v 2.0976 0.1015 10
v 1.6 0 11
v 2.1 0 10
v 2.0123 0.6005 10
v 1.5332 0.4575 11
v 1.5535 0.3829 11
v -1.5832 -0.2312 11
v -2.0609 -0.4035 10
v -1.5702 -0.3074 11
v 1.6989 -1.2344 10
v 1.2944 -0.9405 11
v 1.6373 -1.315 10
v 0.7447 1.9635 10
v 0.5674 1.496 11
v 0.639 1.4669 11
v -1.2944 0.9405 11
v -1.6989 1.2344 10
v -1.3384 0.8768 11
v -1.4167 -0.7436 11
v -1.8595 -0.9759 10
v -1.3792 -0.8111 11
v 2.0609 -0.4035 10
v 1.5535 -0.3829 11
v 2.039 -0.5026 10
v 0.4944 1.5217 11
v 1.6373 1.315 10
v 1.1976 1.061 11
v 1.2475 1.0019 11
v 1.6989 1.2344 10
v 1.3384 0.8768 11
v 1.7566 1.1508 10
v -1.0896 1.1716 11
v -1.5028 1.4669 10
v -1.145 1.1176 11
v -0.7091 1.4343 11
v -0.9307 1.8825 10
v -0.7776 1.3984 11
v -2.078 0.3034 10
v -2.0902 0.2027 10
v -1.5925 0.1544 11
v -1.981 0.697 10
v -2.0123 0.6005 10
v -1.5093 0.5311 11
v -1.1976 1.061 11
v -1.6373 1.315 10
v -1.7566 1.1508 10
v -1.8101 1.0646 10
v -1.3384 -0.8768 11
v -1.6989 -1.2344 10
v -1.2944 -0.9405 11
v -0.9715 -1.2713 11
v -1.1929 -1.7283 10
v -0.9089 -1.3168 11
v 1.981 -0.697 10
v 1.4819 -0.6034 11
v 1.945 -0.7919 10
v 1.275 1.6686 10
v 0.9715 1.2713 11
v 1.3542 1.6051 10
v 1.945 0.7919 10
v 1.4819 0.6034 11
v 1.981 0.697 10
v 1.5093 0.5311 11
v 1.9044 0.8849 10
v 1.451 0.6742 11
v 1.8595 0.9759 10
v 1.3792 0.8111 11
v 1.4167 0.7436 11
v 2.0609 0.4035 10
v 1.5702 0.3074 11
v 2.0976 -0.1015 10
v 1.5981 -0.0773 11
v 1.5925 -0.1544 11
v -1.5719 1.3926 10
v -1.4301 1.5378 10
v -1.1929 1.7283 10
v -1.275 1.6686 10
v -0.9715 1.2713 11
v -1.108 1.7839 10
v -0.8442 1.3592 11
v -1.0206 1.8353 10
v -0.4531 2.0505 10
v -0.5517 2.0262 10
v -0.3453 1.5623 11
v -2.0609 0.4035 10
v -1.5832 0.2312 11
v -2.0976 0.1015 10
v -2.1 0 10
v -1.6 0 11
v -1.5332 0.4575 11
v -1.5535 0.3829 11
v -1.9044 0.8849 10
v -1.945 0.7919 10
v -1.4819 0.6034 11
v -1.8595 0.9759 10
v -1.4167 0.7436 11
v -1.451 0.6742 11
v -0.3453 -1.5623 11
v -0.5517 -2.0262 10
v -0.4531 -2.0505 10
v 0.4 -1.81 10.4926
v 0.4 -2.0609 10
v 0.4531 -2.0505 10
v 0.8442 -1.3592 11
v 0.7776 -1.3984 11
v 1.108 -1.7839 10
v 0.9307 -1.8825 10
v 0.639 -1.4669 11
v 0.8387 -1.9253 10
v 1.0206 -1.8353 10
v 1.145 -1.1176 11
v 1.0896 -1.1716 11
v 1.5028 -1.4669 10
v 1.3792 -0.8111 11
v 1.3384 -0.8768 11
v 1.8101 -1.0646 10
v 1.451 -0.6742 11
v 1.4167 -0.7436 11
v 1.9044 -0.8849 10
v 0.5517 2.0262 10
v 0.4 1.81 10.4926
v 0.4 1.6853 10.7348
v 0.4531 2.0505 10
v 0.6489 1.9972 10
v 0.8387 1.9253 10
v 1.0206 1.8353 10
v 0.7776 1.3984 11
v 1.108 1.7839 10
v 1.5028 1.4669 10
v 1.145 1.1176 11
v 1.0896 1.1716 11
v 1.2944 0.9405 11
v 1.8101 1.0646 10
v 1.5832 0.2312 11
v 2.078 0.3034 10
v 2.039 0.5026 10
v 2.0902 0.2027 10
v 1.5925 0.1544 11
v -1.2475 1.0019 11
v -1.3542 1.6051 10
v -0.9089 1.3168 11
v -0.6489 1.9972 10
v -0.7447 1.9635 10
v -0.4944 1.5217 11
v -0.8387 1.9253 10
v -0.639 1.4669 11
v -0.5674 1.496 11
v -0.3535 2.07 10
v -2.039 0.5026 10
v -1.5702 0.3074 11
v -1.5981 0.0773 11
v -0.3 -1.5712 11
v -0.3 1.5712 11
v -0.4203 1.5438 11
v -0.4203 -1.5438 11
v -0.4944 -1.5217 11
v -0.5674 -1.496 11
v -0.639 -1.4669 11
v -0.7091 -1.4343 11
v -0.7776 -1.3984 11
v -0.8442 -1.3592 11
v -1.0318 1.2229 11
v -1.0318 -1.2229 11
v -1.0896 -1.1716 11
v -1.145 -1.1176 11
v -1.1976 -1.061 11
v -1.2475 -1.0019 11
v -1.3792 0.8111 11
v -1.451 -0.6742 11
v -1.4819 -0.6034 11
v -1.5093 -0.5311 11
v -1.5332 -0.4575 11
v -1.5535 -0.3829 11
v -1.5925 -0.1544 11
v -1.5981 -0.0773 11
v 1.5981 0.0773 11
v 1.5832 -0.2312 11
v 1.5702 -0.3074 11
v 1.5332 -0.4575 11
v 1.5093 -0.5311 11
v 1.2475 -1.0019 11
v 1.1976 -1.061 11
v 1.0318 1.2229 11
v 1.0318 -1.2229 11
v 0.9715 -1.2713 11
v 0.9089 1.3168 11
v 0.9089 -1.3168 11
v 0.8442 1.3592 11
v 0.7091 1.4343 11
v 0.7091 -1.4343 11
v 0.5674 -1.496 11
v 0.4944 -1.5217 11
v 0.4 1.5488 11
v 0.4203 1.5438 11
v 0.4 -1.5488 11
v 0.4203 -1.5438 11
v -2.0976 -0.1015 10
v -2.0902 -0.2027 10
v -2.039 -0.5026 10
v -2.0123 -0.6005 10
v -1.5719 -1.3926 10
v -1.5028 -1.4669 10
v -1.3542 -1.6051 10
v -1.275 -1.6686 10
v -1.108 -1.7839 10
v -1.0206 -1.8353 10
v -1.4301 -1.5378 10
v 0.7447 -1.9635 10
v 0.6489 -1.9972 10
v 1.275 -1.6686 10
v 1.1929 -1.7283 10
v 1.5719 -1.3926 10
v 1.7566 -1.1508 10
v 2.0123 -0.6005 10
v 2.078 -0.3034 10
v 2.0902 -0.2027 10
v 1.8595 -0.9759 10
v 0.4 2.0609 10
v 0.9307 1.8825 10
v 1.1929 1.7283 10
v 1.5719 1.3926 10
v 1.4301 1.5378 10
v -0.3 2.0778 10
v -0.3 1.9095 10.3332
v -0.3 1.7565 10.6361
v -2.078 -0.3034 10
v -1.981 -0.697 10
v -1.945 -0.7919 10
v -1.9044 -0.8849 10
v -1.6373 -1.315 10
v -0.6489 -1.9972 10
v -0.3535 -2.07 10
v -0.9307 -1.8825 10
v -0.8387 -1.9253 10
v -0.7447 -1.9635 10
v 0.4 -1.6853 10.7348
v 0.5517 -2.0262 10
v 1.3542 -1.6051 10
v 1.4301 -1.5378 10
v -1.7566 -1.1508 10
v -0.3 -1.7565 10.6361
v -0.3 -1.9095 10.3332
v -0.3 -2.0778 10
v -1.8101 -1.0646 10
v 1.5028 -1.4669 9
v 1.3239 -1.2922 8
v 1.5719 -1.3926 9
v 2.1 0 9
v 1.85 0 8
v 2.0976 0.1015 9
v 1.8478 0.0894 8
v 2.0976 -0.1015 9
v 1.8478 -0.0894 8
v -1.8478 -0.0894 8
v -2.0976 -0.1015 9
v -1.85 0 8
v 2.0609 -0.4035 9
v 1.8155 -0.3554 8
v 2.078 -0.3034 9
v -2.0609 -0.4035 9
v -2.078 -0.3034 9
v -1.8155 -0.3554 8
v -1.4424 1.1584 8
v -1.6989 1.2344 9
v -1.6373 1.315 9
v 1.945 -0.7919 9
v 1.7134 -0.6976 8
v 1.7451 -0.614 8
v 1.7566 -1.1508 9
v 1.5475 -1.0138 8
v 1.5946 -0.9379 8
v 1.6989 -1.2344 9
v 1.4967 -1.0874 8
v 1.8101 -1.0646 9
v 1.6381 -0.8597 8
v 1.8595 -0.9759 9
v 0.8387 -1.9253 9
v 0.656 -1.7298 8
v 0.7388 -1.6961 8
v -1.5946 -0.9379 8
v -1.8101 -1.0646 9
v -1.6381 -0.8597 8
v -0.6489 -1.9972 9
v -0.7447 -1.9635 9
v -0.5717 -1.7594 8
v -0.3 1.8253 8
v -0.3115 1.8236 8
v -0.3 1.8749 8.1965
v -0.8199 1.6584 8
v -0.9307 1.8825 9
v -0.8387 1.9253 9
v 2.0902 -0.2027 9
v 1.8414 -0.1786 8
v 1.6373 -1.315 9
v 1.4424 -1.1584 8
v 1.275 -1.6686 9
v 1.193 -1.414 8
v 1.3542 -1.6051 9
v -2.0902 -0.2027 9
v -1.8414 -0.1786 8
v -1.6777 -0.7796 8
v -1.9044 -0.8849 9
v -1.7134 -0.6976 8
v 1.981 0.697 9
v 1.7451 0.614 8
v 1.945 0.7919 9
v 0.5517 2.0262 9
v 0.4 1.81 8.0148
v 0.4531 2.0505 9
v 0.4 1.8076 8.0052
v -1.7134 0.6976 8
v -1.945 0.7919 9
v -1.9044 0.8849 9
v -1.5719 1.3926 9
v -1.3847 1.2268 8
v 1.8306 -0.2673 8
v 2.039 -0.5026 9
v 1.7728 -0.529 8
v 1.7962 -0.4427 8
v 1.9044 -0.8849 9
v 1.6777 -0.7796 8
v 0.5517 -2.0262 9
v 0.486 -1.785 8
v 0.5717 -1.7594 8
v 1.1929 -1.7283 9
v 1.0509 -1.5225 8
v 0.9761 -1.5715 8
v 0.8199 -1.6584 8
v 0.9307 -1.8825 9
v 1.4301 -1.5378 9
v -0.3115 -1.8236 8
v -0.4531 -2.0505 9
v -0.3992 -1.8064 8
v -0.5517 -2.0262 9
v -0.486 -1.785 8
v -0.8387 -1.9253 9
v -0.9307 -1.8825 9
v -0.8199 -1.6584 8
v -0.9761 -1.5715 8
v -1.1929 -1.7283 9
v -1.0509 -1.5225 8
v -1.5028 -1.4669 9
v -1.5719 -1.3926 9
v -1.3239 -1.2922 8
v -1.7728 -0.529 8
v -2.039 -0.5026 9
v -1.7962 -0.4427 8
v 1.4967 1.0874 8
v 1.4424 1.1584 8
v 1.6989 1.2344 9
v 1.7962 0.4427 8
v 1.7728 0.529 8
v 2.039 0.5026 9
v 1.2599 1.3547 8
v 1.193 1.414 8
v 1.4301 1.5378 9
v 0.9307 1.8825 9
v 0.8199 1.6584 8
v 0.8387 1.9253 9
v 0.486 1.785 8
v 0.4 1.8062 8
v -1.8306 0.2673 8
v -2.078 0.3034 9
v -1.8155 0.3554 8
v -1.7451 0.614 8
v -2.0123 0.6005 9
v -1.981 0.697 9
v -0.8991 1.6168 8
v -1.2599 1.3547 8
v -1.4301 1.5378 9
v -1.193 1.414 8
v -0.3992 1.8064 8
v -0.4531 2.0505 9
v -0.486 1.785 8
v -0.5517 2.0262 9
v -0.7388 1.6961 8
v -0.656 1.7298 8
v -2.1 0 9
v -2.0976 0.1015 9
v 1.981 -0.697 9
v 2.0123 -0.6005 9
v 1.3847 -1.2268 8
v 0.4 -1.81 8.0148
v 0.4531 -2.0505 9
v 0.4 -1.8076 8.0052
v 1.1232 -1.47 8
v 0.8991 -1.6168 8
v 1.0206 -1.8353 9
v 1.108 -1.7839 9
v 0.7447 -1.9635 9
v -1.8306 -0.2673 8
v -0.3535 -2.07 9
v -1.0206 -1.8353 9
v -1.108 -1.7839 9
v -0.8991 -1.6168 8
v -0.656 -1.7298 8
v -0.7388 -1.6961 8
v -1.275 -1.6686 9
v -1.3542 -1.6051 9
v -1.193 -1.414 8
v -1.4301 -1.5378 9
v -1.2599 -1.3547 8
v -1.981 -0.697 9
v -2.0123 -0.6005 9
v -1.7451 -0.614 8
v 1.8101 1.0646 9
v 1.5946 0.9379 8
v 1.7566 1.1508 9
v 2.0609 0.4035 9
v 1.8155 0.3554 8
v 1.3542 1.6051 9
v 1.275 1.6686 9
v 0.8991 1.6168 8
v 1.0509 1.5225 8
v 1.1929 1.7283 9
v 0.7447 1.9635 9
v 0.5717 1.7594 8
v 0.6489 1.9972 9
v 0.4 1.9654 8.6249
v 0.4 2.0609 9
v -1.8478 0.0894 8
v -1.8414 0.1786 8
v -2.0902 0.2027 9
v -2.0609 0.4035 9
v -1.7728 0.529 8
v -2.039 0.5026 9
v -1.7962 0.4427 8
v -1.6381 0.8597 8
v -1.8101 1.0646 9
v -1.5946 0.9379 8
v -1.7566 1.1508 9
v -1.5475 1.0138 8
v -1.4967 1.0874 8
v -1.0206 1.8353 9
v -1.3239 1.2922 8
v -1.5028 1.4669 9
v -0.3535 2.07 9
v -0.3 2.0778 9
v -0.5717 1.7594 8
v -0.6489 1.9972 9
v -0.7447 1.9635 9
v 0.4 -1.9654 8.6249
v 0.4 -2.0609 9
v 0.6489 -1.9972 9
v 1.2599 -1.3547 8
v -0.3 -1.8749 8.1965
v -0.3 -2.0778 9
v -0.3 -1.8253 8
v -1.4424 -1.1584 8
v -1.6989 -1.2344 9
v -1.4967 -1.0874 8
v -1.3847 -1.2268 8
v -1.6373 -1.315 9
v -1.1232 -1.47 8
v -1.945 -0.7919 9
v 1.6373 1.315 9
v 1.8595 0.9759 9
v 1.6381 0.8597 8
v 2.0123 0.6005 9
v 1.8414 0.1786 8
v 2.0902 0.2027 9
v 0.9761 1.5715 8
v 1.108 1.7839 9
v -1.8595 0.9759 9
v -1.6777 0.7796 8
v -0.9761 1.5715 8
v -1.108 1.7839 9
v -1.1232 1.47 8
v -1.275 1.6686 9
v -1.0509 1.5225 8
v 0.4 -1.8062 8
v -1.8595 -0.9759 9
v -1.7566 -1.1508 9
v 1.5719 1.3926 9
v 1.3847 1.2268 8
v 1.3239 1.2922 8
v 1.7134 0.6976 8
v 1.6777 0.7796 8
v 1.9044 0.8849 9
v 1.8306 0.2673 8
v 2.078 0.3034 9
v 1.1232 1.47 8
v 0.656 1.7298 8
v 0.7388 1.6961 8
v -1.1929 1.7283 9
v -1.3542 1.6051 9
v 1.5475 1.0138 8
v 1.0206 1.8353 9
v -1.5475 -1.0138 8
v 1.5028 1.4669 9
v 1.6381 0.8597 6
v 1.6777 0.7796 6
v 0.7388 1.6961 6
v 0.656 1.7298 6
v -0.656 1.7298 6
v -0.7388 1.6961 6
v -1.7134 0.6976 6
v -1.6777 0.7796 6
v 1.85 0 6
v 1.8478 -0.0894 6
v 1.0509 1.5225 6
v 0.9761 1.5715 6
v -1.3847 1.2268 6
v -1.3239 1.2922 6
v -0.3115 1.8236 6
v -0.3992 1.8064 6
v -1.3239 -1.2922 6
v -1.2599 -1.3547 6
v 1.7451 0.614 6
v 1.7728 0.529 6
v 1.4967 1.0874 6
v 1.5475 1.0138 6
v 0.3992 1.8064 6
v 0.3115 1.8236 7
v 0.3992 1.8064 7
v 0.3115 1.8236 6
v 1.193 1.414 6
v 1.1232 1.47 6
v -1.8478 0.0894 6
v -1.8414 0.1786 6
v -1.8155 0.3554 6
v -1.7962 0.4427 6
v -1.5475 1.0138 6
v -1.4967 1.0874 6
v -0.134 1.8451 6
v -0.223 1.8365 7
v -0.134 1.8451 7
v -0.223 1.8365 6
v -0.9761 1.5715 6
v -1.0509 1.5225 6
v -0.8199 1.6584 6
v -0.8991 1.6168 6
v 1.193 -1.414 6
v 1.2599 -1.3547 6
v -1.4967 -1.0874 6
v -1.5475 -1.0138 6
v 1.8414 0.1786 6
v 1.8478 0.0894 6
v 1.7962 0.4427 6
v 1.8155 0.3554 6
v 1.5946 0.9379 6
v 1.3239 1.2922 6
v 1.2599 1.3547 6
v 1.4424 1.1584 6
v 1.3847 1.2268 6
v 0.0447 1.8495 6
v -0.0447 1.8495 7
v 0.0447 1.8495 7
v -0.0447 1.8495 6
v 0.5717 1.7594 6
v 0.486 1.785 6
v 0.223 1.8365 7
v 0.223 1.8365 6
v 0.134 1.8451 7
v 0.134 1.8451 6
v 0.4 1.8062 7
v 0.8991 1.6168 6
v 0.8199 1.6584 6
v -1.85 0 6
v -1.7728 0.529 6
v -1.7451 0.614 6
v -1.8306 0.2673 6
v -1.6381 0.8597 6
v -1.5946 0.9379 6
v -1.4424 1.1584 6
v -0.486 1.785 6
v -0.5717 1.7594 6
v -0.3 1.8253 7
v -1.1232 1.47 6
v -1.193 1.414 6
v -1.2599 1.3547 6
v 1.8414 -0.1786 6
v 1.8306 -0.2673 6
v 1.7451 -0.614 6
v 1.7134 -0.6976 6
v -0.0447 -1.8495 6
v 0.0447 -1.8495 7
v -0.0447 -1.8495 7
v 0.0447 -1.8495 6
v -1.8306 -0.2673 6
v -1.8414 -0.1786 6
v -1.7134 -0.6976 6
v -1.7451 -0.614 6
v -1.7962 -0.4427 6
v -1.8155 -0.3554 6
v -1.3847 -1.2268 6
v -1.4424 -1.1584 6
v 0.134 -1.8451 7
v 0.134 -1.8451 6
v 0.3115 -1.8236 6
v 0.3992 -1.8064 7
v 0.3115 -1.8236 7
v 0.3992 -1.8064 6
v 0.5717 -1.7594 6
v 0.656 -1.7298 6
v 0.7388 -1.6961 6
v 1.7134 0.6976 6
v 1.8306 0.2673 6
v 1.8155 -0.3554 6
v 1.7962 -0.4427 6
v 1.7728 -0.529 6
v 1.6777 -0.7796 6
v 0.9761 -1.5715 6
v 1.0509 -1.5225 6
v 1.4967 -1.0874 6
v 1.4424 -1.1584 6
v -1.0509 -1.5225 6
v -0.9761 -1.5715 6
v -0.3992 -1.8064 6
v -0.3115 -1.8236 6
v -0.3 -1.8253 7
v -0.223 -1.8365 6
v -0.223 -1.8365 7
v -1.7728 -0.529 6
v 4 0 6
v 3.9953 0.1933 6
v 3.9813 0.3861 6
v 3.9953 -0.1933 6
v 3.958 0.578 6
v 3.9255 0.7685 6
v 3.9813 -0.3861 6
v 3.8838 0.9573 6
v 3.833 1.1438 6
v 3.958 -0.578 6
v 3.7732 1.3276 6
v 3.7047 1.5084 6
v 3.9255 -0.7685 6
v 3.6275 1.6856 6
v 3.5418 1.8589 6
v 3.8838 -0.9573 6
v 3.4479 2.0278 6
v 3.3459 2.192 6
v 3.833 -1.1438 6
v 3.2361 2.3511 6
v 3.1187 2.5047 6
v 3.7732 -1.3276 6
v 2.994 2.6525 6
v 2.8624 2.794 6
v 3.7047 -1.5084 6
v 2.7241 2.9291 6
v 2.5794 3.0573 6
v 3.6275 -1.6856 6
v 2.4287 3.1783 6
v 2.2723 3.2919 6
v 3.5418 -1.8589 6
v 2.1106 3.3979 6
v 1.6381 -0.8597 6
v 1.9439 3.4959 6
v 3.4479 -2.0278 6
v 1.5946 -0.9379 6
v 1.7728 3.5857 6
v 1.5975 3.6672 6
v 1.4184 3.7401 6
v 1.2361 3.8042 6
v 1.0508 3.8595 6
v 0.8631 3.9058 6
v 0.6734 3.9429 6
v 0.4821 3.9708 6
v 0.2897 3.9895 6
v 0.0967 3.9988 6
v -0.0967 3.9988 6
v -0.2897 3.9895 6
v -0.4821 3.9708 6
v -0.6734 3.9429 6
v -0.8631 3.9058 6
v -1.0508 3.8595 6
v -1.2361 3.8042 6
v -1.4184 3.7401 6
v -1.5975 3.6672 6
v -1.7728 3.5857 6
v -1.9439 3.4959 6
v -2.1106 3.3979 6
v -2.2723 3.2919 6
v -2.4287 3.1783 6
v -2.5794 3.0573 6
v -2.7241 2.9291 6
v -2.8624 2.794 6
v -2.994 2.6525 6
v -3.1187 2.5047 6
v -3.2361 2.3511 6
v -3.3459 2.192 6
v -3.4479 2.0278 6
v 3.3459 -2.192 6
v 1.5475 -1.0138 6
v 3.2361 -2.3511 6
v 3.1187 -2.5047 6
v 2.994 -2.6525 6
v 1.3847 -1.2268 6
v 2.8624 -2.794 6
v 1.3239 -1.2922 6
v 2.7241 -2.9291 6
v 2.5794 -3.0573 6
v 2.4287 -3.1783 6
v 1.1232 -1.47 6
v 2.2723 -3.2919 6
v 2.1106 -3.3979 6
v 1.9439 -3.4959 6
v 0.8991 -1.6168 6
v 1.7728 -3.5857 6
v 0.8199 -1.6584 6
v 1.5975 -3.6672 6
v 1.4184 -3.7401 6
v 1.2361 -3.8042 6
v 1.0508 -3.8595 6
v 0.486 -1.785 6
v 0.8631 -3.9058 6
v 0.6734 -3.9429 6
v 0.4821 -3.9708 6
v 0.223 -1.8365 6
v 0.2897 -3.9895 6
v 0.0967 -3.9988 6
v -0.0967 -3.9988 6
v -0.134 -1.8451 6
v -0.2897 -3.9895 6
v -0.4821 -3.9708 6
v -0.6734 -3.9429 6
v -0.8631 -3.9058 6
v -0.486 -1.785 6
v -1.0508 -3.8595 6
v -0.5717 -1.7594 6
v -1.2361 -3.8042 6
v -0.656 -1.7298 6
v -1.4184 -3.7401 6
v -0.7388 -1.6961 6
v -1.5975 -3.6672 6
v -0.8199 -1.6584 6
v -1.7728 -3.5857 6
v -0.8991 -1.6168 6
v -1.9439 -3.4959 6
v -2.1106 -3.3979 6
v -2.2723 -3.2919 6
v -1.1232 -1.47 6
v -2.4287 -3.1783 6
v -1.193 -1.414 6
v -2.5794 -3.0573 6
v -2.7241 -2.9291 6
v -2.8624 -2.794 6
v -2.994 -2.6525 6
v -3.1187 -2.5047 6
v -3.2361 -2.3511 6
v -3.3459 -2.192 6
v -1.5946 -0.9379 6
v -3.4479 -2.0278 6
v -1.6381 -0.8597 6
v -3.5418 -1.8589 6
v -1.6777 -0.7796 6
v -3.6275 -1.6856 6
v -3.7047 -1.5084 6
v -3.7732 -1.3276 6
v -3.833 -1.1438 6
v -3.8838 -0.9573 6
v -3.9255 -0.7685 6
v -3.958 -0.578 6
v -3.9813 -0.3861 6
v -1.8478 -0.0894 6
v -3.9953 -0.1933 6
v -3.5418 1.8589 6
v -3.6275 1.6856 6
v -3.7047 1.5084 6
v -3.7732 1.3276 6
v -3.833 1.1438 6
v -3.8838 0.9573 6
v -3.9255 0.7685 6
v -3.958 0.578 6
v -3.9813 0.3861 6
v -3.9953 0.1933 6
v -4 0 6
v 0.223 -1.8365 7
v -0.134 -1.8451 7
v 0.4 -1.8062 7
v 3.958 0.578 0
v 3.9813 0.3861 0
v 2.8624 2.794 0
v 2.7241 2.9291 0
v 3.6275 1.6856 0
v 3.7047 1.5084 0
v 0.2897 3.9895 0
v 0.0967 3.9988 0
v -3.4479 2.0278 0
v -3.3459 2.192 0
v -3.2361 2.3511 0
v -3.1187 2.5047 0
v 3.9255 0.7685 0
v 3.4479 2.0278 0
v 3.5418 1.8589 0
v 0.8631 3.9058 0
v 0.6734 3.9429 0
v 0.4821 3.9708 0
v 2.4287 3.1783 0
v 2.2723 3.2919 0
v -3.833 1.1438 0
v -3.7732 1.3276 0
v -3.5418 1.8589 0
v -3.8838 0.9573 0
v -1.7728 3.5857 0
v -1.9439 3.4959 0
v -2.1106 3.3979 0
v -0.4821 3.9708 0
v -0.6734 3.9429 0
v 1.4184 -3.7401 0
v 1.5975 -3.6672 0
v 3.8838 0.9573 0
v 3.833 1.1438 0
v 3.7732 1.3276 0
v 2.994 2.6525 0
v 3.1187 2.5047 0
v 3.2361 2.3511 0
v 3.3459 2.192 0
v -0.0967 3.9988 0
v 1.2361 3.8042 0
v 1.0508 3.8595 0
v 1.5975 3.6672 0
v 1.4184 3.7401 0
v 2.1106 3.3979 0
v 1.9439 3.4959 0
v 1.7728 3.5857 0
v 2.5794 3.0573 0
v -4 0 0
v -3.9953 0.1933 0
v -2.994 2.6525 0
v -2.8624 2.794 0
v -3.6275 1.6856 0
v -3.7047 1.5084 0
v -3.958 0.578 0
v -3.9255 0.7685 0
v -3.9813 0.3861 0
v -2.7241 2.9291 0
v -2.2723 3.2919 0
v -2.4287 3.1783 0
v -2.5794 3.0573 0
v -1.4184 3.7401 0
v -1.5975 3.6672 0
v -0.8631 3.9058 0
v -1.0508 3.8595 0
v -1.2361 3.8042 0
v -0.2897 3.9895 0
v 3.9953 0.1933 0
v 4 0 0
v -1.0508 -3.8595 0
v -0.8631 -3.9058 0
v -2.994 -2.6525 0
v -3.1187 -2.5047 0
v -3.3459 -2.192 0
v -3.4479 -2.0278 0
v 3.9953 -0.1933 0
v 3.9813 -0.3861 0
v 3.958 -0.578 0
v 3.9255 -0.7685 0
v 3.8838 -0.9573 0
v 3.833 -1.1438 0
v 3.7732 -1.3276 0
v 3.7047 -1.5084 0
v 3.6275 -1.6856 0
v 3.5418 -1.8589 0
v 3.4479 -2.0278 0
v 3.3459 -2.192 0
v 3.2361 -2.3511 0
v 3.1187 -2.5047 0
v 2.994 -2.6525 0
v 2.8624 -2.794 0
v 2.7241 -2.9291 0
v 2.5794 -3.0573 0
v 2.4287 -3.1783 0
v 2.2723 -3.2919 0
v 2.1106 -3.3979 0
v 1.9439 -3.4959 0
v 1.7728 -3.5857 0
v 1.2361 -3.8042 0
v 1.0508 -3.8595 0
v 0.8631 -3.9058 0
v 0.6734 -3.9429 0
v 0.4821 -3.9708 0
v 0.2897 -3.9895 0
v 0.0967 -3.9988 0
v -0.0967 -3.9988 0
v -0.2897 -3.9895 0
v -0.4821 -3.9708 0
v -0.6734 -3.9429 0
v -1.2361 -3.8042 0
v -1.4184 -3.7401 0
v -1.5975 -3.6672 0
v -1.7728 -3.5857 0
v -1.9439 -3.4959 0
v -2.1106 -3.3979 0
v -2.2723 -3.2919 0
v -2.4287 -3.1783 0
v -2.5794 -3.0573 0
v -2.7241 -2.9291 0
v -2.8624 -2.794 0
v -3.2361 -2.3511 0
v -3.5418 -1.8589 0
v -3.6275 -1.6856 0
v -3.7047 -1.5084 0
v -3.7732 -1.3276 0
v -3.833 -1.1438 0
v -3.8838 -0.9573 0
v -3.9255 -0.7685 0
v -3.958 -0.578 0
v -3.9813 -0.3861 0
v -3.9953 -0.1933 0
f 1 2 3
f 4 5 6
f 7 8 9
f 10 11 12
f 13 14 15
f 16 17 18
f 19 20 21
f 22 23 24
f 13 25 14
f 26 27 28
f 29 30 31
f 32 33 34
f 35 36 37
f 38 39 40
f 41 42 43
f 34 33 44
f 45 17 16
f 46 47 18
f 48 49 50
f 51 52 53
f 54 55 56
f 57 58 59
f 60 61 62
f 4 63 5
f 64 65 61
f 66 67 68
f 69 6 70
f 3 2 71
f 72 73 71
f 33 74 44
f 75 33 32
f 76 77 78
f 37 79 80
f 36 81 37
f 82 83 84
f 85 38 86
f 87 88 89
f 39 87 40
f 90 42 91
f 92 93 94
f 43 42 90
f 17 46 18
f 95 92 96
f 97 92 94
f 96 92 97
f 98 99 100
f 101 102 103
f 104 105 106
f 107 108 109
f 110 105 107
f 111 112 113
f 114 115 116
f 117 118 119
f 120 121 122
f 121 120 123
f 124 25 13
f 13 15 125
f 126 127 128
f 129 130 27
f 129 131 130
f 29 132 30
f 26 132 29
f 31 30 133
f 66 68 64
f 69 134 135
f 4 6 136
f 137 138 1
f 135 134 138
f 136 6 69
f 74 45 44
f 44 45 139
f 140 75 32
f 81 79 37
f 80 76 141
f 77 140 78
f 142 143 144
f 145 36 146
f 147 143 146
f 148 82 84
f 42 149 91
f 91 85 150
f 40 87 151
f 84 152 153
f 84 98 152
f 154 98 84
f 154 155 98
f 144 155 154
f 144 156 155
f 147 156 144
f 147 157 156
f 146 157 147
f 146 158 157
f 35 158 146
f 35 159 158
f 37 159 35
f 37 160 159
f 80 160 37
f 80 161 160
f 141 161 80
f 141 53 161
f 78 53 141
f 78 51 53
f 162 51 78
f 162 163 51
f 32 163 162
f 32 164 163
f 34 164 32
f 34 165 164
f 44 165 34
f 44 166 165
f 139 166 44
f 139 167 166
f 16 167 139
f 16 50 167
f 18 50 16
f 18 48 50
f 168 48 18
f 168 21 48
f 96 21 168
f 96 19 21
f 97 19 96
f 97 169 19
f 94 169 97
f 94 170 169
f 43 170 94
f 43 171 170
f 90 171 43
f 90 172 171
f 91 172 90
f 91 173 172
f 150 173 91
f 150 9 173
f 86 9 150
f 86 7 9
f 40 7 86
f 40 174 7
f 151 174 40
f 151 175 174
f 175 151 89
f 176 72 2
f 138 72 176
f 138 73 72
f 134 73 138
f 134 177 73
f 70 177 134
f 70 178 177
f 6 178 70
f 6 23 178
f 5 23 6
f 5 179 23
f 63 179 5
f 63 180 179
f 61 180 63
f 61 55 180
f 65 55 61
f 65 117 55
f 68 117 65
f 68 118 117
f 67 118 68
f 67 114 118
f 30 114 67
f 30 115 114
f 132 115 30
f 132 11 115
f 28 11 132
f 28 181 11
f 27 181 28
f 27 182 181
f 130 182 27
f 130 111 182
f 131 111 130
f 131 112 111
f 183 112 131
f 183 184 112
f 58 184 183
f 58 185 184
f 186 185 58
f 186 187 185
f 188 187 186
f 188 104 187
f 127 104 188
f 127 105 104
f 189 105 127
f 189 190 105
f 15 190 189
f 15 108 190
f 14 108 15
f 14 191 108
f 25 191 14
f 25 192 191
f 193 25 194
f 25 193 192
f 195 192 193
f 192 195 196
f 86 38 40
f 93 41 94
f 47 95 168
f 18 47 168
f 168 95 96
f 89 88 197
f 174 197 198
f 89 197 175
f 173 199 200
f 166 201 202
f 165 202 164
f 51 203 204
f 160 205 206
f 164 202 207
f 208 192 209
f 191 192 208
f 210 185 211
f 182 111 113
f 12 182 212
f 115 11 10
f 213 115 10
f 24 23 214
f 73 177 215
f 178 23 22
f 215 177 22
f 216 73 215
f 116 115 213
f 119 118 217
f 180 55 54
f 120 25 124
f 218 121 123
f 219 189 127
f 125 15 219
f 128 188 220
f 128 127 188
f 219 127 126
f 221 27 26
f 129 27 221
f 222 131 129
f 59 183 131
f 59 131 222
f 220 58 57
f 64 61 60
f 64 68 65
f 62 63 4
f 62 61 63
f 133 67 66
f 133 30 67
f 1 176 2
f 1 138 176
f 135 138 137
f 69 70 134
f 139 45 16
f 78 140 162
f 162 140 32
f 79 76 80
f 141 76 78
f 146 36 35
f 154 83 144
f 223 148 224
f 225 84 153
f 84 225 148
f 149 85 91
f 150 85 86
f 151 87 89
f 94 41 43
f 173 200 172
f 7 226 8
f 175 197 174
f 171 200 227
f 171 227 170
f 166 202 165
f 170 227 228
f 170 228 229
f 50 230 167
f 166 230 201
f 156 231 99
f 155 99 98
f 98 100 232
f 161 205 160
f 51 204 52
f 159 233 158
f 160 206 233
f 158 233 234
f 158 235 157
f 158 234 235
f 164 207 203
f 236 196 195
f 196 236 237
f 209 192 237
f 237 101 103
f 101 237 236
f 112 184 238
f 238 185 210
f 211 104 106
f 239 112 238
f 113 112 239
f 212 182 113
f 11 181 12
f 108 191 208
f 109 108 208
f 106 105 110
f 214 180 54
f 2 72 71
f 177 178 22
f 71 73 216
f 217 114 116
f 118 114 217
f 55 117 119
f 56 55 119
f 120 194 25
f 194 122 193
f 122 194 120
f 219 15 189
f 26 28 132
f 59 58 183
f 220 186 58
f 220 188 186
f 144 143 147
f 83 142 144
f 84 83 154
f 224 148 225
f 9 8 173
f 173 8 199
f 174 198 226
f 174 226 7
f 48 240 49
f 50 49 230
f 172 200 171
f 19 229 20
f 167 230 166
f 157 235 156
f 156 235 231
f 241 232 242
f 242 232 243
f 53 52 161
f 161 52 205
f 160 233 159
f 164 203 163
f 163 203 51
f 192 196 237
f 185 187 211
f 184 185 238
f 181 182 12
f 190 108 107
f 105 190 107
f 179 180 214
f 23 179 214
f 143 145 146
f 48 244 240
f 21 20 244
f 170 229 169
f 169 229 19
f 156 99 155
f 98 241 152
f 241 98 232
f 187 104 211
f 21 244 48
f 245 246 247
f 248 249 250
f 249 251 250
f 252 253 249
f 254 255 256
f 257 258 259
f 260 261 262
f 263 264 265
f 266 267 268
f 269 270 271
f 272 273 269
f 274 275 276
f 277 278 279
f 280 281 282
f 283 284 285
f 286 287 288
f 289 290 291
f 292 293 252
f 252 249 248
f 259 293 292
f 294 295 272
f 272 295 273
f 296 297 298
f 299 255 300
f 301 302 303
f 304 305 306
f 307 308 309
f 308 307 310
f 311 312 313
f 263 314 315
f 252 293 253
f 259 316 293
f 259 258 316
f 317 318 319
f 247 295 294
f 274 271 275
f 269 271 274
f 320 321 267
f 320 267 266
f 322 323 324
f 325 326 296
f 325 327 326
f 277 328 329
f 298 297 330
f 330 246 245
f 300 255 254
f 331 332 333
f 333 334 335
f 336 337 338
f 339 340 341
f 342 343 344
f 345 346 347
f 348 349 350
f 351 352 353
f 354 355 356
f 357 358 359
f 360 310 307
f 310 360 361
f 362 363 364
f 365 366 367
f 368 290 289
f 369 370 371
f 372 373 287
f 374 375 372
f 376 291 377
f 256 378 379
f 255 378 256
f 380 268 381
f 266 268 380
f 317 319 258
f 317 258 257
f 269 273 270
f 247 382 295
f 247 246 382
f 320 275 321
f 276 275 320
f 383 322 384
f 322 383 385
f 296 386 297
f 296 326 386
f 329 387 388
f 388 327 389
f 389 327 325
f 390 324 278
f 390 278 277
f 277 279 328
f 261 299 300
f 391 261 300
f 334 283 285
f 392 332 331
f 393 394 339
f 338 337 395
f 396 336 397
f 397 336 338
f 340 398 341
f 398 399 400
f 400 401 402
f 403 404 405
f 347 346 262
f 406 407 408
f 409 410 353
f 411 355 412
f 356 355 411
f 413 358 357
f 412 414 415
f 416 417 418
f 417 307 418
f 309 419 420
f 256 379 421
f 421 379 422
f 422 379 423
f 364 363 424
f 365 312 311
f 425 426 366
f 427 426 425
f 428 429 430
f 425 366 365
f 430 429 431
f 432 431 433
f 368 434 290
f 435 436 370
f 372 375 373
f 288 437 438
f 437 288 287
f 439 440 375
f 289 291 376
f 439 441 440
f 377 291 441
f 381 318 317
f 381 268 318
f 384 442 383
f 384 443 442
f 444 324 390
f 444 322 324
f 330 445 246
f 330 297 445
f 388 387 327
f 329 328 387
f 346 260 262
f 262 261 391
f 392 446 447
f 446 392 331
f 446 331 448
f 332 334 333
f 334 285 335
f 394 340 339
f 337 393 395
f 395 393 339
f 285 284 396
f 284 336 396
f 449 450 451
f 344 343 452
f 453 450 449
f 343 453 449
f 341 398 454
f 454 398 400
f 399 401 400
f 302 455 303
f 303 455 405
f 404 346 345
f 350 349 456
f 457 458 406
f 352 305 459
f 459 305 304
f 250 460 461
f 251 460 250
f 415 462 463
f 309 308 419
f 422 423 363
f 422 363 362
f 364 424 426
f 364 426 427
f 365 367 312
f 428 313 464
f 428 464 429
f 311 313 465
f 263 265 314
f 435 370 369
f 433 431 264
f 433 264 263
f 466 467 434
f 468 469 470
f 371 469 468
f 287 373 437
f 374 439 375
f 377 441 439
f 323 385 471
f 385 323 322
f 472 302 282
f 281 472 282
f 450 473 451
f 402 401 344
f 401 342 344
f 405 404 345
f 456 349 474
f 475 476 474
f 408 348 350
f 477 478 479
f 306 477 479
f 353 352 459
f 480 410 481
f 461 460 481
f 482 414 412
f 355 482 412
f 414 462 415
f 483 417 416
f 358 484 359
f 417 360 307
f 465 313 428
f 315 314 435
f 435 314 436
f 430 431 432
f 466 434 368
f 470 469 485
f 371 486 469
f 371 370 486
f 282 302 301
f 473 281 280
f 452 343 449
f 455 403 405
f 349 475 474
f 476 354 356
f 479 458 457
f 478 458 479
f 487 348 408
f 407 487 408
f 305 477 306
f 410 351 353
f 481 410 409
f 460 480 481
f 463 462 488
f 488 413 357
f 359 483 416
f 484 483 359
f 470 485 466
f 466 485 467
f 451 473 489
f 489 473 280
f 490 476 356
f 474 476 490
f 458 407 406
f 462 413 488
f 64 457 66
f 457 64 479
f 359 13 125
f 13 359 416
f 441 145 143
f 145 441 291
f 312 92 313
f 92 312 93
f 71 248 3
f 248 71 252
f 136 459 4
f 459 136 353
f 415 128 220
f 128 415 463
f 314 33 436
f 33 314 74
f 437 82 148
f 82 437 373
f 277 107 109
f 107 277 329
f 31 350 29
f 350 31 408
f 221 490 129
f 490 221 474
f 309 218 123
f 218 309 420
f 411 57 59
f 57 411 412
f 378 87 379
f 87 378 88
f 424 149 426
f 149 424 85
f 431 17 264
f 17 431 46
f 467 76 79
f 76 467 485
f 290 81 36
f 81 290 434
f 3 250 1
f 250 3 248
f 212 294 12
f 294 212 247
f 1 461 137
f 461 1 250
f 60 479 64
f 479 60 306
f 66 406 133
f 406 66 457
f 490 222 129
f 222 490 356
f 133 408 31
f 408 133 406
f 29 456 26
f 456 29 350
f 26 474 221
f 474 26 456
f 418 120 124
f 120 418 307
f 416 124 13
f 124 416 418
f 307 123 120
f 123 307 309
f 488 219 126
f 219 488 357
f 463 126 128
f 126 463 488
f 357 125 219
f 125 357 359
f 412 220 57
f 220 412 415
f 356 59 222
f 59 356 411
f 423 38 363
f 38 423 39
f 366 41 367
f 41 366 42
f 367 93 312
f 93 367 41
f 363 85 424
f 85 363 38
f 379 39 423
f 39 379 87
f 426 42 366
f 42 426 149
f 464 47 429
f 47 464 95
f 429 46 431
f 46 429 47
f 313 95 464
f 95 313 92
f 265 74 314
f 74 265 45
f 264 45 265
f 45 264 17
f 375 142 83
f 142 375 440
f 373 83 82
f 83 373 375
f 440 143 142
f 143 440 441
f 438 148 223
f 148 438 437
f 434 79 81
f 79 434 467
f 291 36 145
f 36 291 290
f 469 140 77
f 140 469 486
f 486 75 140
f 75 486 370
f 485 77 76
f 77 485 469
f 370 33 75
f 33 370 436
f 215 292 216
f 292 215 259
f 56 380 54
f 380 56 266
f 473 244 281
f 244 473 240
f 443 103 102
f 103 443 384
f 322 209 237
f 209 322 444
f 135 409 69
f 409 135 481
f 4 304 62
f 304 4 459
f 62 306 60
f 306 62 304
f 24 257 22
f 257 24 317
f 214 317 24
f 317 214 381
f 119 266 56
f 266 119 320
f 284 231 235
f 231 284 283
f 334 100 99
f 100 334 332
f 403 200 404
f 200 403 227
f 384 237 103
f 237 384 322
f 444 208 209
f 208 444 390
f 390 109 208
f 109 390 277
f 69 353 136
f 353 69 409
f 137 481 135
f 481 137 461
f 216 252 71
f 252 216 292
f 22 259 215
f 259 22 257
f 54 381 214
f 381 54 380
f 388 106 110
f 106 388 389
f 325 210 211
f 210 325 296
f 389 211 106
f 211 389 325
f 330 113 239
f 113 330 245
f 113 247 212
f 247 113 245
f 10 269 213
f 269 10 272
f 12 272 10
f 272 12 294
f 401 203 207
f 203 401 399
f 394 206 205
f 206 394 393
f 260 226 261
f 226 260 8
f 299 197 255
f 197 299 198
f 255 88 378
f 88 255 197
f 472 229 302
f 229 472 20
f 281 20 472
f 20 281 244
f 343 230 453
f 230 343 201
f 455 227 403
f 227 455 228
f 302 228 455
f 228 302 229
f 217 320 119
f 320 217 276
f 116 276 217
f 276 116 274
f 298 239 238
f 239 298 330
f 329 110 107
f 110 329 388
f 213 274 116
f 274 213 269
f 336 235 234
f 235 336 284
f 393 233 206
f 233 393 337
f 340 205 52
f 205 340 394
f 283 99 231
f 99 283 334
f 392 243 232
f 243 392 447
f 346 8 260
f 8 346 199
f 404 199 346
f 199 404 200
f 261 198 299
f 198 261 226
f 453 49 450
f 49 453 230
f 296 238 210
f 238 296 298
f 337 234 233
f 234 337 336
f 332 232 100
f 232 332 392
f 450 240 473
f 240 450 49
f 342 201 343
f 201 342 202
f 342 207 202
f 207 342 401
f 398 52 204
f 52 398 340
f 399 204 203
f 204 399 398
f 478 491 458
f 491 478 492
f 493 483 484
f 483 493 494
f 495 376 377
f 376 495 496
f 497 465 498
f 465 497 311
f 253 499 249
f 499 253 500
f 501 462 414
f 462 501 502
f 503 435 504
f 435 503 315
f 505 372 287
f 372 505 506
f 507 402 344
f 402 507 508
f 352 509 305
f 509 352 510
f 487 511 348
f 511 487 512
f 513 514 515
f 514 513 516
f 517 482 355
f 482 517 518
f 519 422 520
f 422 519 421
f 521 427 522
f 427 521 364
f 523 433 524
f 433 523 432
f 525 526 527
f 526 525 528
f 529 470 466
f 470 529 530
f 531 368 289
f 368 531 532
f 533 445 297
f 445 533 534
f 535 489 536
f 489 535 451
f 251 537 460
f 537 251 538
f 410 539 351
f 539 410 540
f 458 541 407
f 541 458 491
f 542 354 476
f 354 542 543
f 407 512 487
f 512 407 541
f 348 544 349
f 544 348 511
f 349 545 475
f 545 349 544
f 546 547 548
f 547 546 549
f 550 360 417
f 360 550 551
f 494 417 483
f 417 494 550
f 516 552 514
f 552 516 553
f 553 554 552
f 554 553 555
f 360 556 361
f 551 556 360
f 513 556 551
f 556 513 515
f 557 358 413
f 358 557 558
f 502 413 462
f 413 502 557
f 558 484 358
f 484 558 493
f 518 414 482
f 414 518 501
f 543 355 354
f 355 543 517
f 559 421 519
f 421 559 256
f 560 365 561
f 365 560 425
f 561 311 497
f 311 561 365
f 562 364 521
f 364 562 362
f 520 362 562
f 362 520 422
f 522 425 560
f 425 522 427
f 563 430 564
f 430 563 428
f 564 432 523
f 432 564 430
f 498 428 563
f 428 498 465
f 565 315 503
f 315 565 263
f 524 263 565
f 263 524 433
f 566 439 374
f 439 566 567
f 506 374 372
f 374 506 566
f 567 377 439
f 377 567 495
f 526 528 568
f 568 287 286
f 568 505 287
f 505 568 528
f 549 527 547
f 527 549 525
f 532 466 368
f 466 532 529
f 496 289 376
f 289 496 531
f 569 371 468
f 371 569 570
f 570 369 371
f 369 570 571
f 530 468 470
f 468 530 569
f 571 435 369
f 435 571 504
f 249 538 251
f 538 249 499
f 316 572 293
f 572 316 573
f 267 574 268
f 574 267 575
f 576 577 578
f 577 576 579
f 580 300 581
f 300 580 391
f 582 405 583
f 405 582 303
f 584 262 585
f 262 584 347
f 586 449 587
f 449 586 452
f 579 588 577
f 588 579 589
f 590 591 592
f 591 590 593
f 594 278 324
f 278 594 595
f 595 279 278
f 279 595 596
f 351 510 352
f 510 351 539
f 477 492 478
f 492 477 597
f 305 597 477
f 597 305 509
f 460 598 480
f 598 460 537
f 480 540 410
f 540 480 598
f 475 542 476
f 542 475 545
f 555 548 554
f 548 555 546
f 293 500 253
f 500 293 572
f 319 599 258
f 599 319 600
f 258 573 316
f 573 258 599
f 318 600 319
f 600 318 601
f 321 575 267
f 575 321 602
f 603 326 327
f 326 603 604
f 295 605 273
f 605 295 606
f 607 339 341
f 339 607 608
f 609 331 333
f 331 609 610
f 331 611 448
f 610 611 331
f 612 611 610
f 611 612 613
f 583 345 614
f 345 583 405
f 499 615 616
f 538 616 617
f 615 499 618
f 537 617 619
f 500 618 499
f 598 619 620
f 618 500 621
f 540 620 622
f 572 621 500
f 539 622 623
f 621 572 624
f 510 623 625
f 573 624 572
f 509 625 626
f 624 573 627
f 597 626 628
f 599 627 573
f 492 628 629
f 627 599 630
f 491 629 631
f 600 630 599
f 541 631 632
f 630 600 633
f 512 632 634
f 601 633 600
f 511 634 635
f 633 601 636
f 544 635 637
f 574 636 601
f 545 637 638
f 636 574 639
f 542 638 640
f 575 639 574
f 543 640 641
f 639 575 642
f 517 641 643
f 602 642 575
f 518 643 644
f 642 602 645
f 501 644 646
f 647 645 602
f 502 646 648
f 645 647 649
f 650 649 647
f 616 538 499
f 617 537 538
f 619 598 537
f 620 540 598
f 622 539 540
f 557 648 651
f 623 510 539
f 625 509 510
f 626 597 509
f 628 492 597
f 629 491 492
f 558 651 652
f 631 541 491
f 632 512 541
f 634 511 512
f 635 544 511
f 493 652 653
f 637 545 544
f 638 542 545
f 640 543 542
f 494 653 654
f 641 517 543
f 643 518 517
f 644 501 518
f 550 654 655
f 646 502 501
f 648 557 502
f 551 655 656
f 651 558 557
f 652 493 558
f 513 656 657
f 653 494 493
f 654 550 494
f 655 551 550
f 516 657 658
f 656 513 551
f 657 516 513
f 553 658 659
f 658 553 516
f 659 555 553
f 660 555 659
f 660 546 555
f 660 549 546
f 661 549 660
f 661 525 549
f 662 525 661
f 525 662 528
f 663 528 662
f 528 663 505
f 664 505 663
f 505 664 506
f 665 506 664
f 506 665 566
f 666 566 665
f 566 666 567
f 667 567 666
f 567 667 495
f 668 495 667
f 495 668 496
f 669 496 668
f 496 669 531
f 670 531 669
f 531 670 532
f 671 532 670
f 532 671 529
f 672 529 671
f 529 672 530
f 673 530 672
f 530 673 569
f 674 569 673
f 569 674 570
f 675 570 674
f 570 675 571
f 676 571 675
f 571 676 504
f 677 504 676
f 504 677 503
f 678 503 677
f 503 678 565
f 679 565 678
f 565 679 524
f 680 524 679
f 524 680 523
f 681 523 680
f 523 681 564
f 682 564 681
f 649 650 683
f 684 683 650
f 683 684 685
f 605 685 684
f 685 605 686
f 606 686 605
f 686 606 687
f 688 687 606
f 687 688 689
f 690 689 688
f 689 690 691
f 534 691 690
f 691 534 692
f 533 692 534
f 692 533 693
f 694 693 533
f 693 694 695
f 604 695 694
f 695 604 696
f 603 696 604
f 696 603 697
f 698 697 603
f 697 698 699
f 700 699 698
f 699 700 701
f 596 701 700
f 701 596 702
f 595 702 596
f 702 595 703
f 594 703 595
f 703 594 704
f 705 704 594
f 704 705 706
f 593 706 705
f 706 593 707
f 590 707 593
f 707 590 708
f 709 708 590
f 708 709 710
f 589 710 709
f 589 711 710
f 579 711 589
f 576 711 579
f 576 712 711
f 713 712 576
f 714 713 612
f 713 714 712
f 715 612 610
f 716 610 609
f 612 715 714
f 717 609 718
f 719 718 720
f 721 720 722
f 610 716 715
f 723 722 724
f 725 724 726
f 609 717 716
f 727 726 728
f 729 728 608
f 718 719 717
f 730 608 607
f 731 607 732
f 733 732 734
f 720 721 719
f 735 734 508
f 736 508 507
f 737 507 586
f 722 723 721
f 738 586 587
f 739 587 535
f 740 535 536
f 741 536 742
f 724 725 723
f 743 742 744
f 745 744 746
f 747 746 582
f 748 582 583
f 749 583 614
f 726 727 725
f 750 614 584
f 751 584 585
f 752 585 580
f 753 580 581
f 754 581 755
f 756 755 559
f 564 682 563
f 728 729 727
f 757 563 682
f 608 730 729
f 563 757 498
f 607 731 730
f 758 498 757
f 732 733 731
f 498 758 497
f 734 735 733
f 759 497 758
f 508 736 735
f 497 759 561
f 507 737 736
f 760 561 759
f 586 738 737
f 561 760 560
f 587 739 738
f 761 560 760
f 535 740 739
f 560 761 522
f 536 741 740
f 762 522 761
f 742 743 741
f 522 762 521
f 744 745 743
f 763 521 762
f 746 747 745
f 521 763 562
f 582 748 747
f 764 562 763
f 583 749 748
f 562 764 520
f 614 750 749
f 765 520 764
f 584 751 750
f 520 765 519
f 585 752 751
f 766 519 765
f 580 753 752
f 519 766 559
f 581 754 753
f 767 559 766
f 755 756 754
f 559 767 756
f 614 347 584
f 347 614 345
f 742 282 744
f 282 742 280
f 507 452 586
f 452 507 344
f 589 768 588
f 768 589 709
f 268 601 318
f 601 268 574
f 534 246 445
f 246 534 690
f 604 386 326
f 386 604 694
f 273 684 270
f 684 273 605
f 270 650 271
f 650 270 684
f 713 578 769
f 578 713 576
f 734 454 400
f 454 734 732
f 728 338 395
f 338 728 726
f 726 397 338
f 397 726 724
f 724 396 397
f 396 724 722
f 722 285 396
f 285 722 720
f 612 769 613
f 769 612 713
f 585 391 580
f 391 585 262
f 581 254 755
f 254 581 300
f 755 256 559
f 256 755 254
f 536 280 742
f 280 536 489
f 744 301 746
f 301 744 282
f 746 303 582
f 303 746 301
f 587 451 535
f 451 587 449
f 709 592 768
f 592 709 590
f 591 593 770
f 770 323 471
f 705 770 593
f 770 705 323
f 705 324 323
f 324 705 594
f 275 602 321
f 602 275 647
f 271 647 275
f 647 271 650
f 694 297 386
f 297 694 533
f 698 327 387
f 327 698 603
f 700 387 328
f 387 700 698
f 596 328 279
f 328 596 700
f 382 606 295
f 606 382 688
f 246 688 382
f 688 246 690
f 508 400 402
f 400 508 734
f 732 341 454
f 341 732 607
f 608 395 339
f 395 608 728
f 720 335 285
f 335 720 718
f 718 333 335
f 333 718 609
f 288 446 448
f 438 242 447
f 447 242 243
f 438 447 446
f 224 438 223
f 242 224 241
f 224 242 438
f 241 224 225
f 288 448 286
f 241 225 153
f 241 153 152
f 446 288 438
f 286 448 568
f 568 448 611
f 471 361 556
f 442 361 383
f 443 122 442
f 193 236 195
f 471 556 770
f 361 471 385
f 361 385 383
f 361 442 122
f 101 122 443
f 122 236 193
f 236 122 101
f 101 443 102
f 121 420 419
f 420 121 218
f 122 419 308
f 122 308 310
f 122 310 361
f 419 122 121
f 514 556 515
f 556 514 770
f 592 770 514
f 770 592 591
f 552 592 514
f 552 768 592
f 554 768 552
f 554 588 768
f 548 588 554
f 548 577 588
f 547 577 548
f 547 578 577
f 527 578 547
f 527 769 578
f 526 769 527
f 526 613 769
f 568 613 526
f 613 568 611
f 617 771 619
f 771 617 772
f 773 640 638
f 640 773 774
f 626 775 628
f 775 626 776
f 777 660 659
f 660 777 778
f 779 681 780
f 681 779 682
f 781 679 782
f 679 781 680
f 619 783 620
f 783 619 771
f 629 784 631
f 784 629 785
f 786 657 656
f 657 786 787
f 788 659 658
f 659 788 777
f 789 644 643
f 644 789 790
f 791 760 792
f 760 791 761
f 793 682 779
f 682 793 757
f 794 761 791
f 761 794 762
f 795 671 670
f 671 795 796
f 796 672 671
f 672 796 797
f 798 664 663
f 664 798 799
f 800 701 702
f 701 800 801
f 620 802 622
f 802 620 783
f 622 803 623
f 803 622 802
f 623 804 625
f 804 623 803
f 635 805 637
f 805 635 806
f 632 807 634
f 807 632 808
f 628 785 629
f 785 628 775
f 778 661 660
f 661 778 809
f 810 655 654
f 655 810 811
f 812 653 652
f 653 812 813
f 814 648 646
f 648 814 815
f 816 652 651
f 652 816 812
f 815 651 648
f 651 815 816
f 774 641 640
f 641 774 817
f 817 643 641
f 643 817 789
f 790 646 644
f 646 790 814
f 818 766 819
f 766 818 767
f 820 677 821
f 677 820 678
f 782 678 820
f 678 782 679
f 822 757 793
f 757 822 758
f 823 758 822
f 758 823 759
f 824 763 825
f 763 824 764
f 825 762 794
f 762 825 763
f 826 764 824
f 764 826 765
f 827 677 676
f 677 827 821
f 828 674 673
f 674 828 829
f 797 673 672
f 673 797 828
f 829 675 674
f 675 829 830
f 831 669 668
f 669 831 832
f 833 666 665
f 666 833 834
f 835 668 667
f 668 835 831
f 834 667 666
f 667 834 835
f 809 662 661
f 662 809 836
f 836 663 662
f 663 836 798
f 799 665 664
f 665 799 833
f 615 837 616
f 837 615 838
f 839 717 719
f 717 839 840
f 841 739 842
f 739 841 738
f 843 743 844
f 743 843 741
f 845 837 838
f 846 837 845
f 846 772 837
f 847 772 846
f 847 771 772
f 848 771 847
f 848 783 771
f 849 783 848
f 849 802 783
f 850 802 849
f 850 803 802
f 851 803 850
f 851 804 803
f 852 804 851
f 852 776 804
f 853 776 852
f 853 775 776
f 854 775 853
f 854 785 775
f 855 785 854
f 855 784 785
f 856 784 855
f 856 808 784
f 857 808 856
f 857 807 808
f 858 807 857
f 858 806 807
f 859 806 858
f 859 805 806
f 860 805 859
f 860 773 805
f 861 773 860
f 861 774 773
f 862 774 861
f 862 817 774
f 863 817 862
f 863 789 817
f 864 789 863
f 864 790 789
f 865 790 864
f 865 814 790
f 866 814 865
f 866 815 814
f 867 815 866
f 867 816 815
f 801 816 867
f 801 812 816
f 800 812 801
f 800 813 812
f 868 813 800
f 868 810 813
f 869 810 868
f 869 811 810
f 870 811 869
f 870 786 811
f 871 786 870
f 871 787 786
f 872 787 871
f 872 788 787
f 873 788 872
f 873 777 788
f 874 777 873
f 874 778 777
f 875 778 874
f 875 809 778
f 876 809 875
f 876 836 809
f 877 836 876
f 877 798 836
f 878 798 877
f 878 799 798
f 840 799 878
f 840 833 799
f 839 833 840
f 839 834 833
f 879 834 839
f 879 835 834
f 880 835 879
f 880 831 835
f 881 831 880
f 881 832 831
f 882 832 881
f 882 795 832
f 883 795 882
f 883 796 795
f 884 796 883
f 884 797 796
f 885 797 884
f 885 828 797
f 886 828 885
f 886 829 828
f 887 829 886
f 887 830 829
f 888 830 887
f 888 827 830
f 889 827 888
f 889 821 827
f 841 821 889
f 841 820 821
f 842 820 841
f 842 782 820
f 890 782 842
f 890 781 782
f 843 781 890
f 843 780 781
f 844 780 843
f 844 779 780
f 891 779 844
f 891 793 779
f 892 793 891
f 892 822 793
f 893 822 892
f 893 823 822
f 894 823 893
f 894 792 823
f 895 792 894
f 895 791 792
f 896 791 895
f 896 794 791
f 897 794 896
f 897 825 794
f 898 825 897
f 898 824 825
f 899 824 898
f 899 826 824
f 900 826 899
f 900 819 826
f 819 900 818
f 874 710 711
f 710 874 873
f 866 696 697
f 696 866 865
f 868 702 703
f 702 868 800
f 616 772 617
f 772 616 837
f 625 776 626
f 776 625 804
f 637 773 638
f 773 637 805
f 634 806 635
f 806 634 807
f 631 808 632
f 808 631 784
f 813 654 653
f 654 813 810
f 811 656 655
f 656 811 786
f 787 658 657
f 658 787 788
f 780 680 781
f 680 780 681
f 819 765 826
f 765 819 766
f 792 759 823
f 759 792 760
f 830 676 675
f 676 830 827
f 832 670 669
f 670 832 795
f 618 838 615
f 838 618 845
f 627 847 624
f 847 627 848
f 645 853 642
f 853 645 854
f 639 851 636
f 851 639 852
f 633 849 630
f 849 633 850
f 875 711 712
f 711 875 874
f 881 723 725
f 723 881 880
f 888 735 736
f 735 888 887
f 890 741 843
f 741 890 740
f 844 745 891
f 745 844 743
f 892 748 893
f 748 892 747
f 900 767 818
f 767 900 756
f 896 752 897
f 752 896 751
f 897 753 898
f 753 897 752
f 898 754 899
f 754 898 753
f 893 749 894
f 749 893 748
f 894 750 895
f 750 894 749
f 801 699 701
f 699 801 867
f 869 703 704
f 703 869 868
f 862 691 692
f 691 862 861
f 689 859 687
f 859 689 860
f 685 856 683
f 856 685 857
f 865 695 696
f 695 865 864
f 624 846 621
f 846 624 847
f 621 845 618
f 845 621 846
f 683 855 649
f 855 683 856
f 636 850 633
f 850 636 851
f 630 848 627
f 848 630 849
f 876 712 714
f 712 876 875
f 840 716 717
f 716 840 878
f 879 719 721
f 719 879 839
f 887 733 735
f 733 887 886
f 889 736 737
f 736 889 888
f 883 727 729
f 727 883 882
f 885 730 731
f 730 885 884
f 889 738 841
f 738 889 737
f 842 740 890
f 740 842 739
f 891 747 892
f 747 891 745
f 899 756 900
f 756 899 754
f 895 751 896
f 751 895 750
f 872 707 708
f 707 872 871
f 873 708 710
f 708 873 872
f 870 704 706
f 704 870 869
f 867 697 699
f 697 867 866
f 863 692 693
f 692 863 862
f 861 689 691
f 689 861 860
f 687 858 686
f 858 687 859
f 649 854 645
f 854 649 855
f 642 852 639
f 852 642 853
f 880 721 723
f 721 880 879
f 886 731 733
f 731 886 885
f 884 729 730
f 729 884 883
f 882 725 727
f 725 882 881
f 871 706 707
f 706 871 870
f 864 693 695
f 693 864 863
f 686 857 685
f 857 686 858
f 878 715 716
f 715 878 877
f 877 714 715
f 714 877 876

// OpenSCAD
$fn=130;

D_sock=8; //Sockeldurchmesser
D_kubb=4.2;  //Knubbeldurchmesser
//Schaftdurchmesser=Knubbeldurchmesser-0.5

//Sockel
translate([0,0,0])
cylinder (h=6, d=D_sock);

difference(){

//Knubbl
union(){
translate([0,0,10])
cylinder (h=1, d1=D_kubb, d2=D_kubb-1);
translate([0,0,8])
cylinder (h=1, d1=D_kubb-0.5, d2=D_kubb);
translate([0,0,9])
cylinder (h=1, d1=D_kubb, d2=D_kubb);
//Schaft
translate([0,0,6])
cylinder (h=2, d=D_kubb-0.5);   
}


//Einschnitt
translate([-0.3,-2.5,7])
 cube([0.7,5,7]);
}
